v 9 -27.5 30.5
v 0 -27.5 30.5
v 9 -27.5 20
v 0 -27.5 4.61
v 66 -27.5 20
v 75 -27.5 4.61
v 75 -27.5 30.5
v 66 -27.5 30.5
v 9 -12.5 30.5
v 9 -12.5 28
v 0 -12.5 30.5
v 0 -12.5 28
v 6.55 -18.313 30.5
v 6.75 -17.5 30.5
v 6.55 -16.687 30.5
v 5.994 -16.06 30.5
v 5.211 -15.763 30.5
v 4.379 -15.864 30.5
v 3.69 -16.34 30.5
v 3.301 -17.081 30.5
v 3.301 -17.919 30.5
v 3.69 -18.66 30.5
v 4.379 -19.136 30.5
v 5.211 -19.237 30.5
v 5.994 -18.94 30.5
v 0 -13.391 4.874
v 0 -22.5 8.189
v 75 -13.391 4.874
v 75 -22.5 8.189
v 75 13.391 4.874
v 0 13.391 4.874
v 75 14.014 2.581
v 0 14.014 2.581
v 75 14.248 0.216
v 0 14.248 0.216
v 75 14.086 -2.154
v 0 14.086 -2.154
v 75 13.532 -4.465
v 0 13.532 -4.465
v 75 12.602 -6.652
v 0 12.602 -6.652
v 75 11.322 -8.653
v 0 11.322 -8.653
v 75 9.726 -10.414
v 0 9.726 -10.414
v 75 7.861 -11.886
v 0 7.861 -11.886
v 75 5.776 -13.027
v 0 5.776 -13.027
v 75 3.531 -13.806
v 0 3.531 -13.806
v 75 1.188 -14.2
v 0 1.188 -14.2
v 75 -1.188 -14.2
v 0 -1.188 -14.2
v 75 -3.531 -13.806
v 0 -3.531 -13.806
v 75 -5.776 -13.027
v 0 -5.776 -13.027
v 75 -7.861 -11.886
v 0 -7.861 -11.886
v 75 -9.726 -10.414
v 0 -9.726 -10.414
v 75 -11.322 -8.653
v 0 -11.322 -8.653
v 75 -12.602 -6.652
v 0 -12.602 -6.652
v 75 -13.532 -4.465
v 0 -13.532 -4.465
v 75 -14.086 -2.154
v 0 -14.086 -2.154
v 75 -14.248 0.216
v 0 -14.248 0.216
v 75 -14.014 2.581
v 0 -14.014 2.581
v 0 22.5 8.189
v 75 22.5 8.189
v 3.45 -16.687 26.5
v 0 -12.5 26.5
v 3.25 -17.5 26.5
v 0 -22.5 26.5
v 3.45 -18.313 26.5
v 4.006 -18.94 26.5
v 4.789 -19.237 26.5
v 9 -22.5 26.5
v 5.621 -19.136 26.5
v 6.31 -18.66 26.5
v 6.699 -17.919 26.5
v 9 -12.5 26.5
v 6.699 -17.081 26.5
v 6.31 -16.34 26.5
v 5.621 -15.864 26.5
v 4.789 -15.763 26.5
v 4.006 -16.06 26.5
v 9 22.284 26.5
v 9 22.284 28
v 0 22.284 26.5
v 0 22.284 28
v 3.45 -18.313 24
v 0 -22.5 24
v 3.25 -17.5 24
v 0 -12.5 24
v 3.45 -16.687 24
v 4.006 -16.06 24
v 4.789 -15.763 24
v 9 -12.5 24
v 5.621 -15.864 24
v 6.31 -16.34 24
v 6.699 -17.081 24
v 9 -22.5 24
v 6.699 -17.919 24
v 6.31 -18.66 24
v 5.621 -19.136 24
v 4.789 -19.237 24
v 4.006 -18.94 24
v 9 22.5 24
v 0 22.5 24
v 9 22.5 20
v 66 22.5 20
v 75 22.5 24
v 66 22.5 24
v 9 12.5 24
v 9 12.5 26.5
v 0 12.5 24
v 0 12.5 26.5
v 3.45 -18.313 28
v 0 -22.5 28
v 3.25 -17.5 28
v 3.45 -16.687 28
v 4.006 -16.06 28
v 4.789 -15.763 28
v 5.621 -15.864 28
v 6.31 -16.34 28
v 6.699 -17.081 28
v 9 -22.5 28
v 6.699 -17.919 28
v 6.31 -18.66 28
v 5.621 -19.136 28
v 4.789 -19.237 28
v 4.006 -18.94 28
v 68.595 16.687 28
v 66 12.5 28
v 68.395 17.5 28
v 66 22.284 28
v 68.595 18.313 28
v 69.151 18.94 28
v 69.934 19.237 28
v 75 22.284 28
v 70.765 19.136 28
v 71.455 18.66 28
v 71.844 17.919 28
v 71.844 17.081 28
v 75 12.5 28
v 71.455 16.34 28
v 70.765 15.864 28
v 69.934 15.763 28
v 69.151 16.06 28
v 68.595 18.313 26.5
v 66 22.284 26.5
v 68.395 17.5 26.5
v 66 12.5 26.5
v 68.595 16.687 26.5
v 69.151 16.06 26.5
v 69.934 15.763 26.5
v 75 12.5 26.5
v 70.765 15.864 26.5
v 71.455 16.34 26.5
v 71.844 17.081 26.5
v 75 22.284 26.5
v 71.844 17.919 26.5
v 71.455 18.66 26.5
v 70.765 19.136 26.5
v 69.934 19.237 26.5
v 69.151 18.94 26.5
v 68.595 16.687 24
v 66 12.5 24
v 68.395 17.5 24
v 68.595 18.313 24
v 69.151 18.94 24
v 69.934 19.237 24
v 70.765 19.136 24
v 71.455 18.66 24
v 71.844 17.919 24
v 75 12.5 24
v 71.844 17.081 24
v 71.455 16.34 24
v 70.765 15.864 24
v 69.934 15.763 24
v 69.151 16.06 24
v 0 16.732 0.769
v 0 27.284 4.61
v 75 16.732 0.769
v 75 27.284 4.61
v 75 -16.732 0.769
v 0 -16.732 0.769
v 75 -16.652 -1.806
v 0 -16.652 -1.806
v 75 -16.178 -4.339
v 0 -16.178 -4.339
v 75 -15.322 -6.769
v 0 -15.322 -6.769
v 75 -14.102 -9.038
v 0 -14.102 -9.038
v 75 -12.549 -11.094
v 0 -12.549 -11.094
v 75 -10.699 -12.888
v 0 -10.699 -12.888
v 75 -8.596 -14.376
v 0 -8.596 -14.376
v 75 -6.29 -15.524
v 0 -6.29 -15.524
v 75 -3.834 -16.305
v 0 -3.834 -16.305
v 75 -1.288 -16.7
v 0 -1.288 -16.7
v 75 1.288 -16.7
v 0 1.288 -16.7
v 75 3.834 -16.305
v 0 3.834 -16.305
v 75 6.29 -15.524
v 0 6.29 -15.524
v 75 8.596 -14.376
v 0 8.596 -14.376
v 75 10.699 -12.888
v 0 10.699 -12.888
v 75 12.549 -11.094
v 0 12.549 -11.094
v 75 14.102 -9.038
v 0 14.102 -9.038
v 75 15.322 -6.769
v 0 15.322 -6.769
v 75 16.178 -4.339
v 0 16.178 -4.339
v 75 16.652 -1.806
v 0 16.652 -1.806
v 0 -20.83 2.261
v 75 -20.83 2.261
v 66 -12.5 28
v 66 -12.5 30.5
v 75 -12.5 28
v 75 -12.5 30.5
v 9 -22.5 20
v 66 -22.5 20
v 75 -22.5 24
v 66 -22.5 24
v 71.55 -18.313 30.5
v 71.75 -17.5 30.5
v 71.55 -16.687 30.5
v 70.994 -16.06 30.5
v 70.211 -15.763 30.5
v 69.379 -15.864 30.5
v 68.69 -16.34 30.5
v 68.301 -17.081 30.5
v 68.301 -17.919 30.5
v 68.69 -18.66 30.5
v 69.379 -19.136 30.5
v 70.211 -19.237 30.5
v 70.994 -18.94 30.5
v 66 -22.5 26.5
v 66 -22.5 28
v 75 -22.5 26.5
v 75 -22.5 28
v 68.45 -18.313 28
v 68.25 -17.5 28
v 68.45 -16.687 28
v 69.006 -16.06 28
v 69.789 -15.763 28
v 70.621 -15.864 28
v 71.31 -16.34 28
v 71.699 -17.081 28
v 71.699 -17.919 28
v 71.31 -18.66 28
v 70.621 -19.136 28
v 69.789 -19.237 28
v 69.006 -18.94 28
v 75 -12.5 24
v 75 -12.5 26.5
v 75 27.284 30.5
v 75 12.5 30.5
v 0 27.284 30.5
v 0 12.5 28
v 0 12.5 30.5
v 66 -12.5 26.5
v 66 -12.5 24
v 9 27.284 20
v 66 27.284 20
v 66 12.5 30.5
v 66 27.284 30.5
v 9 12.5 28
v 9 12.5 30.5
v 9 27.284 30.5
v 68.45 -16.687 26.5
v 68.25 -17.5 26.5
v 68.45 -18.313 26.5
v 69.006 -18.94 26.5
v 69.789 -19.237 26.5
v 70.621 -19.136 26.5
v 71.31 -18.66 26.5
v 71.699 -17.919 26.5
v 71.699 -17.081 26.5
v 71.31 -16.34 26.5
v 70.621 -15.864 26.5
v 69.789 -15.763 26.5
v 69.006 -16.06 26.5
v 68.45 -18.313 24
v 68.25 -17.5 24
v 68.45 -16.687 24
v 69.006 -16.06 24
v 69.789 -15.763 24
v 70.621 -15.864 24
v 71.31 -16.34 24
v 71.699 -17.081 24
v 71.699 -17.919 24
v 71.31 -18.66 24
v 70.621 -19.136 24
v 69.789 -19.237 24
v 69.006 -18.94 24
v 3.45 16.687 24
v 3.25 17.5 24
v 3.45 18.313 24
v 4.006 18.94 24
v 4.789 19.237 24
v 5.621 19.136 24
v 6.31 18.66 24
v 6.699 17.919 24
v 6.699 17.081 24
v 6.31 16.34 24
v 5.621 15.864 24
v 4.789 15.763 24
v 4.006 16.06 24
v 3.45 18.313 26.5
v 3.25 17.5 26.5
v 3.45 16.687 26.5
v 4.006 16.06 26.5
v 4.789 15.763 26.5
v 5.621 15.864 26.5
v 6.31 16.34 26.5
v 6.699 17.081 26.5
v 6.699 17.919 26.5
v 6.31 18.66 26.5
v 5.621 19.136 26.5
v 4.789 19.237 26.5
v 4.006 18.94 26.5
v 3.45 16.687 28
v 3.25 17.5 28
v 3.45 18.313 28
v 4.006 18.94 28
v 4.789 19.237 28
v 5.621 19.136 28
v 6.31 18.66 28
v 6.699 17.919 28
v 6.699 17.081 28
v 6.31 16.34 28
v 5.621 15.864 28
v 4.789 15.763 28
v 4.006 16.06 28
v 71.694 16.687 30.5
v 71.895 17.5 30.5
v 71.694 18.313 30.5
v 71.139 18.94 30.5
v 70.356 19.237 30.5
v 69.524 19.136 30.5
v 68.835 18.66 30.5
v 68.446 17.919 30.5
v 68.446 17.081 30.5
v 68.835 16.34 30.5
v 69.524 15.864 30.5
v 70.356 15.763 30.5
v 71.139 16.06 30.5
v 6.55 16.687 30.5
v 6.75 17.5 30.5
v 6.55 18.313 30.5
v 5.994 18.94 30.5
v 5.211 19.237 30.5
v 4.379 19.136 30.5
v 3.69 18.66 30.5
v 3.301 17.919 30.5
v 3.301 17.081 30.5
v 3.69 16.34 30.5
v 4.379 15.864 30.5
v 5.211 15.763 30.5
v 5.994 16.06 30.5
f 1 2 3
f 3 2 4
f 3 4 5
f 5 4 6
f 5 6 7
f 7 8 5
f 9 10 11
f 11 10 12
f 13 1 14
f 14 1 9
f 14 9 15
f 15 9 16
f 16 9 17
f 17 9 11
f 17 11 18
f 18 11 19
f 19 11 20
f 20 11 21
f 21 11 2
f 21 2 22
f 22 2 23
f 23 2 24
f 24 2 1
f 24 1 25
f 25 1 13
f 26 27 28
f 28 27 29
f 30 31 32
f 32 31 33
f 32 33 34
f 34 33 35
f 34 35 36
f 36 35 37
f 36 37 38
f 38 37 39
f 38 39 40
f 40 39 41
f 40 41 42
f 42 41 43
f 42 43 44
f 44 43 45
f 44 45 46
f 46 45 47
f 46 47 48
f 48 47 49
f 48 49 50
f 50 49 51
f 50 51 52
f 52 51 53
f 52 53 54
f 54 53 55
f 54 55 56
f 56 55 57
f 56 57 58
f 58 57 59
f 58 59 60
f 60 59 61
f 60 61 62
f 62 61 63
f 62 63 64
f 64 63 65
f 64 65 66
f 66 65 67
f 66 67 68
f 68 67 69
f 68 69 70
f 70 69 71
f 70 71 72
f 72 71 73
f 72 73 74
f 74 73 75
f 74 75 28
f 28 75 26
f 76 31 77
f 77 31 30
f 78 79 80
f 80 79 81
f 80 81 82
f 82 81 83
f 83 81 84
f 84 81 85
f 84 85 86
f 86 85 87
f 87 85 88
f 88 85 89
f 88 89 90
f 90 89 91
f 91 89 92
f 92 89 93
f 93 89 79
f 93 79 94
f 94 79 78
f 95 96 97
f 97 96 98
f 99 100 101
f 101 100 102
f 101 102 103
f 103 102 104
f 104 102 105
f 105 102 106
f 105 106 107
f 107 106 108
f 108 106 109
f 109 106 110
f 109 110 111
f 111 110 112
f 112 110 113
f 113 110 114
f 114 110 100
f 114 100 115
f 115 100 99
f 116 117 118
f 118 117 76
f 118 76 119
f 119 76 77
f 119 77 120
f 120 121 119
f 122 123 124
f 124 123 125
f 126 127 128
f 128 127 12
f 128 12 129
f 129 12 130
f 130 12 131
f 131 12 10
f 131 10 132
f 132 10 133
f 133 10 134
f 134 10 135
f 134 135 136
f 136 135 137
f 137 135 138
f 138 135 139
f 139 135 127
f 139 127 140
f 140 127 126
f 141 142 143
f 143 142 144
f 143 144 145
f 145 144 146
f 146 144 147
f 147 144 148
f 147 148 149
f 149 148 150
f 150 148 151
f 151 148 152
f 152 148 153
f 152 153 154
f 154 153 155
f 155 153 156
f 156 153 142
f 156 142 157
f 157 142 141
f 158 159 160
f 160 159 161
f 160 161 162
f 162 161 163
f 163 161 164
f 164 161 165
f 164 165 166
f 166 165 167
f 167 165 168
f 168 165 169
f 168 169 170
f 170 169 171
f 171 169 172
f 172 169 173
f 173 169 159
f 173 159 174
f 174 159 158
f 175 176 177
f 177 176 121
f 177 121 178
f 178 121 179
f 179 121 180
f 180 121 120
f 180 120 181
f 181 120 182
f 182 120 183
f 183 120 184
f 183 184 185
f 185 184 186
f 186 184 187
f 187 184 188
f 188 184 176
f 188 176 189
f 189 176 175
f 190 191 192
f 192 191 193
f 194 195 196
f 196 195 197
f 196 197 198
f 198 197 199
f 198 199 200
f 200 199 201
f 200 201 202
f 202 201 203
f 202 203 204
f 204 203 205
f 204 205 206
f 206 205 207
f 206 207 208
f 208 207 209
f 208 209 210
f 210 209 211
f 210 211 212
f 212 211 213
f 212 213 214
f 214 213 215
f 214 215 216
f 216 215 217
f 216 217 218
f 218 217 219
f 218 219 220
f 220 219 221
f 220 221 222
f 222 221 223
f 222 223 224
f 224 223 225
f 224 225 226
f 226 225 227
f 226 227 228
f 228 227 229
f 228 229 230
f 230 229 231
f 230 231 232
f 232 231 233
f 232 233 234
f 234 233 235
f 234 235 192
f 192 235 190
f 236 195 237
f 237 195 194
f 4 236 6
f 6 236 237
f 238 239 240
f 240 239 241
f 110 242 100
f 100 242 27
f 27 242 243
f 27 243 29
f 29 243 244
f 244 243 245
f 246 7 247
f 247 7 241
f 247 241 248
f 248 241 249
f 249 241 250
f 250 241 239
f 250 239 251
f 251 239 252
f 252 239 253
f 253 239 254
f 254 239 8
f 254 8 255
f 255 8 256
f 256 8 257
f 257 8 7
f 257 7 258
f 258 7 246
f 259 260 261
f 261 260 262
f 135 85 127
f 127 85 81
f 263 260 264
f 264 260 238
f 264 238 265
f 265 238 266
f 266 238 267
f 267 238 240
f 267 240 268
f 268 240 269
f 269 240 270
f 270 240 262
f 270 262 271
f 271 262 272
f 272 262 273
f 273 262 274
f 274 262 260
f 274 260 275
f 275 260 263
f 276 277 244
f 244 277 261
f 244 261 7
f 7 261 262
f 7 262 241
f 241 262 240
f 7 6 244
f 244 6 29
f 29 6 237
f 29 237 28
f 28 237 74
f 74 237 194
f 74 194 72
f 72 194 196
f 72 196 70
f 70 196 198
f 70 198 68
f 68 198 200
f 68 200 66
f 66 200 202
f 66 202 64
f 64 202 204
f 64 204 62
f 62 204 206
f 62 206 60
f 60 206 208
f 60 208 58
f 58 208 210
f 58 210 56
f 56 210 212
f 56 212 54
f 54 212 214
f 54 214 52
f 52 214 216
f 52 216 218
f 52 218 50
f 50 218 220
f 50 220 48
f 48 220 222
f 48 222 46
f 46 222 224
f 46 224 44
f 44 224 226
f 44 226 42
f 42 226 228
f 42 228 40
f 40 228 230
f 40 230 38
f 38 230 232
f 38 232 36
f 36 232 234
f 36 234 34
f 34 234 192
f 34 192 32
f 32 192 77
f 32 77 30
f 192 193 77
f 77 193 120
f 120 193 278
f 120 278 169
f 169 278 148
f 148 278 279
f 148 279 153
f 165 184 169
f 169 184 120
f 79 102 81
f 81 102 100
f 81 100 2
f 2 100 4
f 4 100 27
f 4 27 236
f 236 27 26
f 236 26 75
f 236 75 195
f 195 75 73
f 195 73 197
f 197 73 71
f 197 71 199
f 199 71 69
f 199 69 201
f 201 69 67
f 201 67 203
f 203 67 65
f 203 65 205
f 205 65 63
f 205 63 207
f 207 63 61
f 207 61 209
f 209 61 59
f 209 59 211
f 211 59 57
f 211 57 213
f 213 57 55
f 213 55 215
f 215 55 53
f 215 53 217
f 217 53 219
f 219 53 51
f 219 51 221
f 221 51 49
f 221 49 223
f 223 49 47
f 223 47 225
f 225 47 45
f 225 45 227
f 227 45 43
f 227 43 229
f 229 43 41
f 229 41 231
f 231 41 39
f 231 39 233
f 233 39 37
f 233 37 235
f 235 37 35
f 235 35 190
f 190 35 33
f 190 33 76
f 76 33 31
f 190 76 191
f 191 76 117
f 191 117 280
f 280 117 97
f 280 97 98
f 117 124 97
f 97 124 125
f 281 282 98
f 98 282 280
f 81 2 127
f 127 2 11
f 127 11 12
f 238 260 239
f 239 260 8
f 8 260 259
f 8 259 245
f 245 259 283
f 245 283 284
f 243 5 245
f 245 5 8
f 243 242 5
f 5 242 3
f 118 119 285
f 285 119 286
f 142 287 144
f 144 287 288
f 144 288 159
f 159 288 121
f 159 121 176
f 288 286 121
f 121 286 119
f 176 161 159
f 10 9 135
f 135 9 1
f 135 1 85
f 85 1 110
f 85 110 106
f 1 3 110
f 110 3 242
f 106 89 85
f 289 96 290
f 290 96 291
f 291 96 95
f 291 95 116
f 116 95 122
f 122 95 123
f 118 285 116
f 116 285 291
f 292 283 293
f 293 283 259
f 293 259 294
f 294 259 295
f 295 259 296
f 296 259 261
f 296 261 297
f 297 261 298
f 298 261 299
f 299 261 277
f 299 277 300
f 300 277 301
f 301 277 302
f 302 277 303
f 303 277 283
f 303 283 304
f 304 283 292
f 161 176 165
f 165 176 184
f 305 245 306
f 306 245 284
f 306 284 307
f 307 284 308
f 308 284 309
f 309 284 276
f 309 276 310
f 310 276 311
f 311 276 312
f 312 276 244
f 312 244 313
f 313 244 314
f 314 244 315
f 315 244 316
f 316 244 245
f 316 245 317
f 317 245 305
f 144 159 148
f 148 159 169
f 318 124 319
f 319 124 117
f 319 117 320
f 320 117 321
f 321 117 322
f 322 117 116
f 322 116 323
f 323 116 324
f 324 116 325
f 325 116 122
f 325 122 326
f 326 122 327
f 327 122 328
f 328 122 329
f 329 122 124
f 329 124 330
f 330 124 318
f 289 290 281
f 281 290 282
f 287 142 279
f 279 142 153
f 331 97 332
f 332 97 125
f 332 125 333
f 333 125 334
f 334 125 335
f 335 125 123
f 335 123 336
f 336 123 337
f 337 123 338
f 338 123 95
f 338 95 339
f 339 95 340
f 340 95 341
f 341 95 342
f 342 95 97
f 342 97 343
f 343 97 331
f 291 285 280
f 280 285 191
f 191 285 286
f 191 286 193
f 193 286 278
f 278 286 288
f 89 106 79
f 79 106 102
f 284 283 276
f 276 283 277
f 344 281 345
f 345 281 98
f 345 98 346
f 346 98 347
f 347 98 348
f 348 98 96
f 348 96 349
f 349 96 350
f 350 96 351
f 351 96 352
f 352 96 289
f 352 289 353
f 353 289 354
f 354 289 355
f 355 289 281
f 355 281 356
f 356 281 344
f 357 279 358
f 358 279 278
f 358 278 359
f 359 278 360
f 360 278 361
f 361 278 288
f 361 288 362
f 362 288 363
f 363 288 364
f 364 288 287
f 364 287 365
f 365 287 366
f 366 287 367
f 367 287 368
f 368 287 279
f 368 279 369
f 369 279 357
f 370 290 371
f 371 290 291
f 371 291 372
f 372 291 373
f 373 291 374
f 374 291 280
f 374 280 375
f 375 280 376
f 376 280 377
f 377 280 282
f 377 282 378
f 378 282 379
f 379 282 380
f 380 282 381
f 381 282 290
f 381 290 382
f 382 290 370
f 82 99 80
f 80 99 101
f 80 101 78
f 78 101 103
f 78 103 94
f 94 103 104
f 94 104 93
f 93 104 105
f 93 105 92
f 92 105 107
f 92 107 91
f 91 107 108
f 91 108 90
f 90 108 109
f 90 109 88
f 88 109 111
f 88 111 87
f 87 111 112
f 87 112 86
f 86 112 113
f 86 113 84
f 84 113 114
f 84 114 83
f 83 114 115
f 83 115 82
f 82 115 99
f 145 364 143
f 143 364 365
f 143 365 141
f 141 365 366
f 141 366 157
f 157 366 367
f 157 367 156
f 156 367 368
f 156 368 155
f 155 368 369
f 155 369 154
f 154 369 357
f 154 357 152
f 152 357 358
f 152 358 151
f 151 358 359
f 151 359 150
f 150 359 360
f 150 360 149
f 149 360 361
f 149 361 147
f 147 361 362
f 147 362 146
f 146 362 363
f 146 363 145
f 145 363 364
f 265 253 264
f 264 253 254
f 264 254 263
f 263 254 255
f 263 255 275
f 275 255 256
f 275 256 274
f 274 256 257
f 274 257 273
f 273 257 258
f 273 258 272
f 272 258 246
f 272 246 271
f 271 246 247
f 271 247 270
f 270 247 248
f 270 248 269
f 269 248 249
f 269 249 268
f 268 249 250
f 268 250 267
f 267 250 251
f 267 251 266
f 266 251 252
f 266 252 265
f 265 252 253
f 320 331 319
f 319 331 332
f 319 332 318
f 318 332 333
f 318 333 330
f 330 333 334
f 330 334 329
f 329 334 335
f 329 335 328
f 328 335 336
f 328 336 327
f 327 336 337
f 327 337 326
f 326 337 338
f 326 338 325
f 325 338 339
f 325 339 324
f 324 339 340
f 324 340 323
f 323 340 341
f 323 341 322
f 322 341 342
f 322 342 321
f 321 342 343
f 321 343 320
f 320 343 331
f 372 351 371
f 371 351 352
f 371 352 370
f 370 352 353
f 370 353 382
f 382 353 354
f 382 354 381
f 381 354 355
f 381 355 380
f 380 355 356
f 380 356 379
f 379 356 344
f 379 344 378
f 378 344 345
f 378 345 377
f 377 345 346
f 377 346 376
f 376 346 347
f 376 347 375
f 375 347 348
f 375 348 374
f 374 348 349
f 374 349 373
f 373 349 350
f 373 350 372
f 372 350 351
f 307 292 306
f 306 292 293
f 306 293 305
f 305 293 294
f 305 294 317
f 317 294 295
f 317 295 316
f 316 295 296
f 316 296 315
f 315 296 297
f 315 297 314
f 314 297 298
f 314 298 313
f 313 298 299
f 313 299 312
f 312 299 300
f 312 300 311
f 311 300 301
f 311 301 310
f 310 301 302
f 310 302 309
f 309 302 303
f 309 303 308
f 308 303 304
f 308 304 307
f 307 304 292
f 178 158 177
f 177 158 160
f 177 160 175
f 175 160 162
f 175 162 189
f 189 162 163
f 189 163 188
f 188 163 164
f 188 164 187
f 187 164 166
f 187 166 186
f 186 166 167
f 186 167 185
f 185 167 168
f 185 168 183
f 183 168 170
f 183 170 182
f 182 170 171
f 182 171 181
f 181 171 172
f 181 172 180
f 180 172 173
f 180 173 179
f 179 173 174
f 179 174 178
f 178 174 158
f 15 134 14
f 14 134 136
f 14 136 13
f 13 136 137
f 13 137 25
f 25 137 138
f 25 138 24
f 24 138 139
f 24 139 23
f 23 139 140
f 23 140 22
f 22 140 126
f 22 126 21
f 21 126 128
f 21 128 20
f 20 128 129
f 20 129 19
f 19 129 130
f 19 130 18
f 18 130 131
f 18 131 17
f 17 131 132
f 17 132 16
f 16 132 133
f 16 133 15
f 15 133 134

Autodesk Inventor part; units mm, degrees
ref_plane "YZ Plane" through (0, 0, 0) normal (1, 0, 0) x (0, 1, 0)
ref_plane "XZ Plane" through (0, 0, 0) normal (0, 1, 0) x (-1, 0, 0)
ref_plane "XY Plane" through (0, 0, 0) normal (0, 0, 1) x (1, 0, 0)
sketch "Szkic1" plane through (0, 0, 0) normal (1, 0, 0) x (0, 1, 0)
  arc A0 (-13.3906, 4.8738) -> (13.3906, 4.8738) centre (0, 0) ccw
  arc A1 (-16.7323, 0.7692) -> (16.7323, 0.7692) centre (0, 0) ccw
  line L0 (13.3906, 4.8738) -> (15.7399, 5.7288)
  line L1 (0, 0) -> (16.75, 0) construction
  line L2 (0, 0) -> (0, 14)
  line L3 (-13.3906, 4.8738) -> (-15.7399, 5.7288)
  line L4 (0, 14) -> (0, 16.75)
  line L5 (12.5, 24) -> (22.5, 24)
  line L6 (-12.5, 24) -> (-22.5, 24)
  line L7 (22.2845, 26.5) -> (12.5, 26.5)
  line L8 (12.5, 26.5) -> (12.5, 24)
  line L9 (22.2845, 26.5) -> (22.2845, 28)
  line L10 (22.2845, 28) -> (12.5, 28)
  line L11 (12.5, 28) -> (12.5, 30.5)
  line L12 (12.5, 30.5) -> (22.2845, 30.5)
  line L13 (-22.5, 24) -> (-12.5, 24)
  line L14 (-12.5, 24) -> (-12.5, 26.5)
  line L15 (-12.5, 26.5) -> (-22.5, 26.5)
  line L16 (-22.5, 26.5) -> (-22.5, 28)
  line L17 (-22.5, 28) -> (-12.5, 28)
  line L18 (-12.5, 28) -> (-12.5, 30.5)
  line L19 (-12.5, 30.5) -> (-22.5, 30.5)
  line L20 (22.5, 24) -> (22.5, 8.1893)
  line L21 (22.5, 8.1893) -> (15.7399, 5.7288)
  line L22 (-22.5, 24) -> (-22.5, 8.1893)
  line L23 (-22.5, 8.1893) -> (-15.7399, 5.7288)
  line L24 (-22.5, 30.5) -> (-27.5, 30.5)
  line L25 (-27.5, 30.5) -> (-27.5, 10.0092)
  line L26 (22.2845, 30.5) -> (27.2845, 30.5)
  line L27 (27.2845, 30.5) -> (27.2845, 10.0135)
  line L28 (20.83, 2.2606) -> (27.2845, 4.6099)
  line L29 (27.2845, 4.6099) -> (27.2845, 10.0135)
  line L30 (20.83, 2.2606) -> (16.7323, 0.7692)
  line L31 (-20.83, 2.2606) -> (-16.7323, 0.7692)
  line L32 (-20.83, 2.2606) -> (-27.5, 4.6099)
  line L33 (-27.5, 4.6099) -> (-27.5, 10.0092)
  dimension "d26" = 5
  dimension "d27" = 5
extrude "Wyciągnięcie proste1" add sketch "Szkic1" along normal blind 75
sketch "Szkic2" plane through (0, 12.5, 30.5) normal (0, 0, 1) x (1, 0, 0)
  line L0 (0, 14.7845) -> (75, 14.7845) projected
  line L1 (0, 14.7845) -> (9, 14.7845)
  line L2 (75, -40) -> (75, -33.33) projected
  line L3 (75, -40) -> (66, -40)
  line L4 (9, 14.7845) -> (66, 14.7845)
  line L5 (66, 14.7845) -> (66, -40)
  line L6 (66, -40) -> (9, -40)
  line L7 (9, -40) -> (9, 14.7845)
  point P0 (0, -12.5)
  dimension "d32" = 9
  dimension "d33" = 9
extrude "Wyciągnięcie proste2" cut sketch "Szkic2" against normal blind 10.5
sketch "Szkic3" plane through (0, 12.5, 30.5) normal (0, 0, 1) x (1, 0, 0)
  line L0 (0, 0) -> (0, 9.7845) projected
  line L1 (5, 0) -> (0, 0)
  circle A0 centre (5, 5) radius 1.75
  line L2 (0, -25) -> (9, -25) projected
  line L3 (5, -25) -> (0, -25)
  circle A1 centre (5, -30) radius 1.75
  line L4 (66, -25) -> (75, -25) projected
  circle A2 centre (70, -30) radius 1.75
  circle A3 centre (70.1447, 5) radius 1.75
  point P0 (0, -12.5)
  dimension "d39" = 3.5
  dimension "d42" = 3.5
  dimension "d46" = 3.5
  dimension "d48" = 3.5
extrude "Wyciągnięcie proste3" cut sketch "Szkic3" against normal blind 10.5
properties part number "obejmadrążka"
